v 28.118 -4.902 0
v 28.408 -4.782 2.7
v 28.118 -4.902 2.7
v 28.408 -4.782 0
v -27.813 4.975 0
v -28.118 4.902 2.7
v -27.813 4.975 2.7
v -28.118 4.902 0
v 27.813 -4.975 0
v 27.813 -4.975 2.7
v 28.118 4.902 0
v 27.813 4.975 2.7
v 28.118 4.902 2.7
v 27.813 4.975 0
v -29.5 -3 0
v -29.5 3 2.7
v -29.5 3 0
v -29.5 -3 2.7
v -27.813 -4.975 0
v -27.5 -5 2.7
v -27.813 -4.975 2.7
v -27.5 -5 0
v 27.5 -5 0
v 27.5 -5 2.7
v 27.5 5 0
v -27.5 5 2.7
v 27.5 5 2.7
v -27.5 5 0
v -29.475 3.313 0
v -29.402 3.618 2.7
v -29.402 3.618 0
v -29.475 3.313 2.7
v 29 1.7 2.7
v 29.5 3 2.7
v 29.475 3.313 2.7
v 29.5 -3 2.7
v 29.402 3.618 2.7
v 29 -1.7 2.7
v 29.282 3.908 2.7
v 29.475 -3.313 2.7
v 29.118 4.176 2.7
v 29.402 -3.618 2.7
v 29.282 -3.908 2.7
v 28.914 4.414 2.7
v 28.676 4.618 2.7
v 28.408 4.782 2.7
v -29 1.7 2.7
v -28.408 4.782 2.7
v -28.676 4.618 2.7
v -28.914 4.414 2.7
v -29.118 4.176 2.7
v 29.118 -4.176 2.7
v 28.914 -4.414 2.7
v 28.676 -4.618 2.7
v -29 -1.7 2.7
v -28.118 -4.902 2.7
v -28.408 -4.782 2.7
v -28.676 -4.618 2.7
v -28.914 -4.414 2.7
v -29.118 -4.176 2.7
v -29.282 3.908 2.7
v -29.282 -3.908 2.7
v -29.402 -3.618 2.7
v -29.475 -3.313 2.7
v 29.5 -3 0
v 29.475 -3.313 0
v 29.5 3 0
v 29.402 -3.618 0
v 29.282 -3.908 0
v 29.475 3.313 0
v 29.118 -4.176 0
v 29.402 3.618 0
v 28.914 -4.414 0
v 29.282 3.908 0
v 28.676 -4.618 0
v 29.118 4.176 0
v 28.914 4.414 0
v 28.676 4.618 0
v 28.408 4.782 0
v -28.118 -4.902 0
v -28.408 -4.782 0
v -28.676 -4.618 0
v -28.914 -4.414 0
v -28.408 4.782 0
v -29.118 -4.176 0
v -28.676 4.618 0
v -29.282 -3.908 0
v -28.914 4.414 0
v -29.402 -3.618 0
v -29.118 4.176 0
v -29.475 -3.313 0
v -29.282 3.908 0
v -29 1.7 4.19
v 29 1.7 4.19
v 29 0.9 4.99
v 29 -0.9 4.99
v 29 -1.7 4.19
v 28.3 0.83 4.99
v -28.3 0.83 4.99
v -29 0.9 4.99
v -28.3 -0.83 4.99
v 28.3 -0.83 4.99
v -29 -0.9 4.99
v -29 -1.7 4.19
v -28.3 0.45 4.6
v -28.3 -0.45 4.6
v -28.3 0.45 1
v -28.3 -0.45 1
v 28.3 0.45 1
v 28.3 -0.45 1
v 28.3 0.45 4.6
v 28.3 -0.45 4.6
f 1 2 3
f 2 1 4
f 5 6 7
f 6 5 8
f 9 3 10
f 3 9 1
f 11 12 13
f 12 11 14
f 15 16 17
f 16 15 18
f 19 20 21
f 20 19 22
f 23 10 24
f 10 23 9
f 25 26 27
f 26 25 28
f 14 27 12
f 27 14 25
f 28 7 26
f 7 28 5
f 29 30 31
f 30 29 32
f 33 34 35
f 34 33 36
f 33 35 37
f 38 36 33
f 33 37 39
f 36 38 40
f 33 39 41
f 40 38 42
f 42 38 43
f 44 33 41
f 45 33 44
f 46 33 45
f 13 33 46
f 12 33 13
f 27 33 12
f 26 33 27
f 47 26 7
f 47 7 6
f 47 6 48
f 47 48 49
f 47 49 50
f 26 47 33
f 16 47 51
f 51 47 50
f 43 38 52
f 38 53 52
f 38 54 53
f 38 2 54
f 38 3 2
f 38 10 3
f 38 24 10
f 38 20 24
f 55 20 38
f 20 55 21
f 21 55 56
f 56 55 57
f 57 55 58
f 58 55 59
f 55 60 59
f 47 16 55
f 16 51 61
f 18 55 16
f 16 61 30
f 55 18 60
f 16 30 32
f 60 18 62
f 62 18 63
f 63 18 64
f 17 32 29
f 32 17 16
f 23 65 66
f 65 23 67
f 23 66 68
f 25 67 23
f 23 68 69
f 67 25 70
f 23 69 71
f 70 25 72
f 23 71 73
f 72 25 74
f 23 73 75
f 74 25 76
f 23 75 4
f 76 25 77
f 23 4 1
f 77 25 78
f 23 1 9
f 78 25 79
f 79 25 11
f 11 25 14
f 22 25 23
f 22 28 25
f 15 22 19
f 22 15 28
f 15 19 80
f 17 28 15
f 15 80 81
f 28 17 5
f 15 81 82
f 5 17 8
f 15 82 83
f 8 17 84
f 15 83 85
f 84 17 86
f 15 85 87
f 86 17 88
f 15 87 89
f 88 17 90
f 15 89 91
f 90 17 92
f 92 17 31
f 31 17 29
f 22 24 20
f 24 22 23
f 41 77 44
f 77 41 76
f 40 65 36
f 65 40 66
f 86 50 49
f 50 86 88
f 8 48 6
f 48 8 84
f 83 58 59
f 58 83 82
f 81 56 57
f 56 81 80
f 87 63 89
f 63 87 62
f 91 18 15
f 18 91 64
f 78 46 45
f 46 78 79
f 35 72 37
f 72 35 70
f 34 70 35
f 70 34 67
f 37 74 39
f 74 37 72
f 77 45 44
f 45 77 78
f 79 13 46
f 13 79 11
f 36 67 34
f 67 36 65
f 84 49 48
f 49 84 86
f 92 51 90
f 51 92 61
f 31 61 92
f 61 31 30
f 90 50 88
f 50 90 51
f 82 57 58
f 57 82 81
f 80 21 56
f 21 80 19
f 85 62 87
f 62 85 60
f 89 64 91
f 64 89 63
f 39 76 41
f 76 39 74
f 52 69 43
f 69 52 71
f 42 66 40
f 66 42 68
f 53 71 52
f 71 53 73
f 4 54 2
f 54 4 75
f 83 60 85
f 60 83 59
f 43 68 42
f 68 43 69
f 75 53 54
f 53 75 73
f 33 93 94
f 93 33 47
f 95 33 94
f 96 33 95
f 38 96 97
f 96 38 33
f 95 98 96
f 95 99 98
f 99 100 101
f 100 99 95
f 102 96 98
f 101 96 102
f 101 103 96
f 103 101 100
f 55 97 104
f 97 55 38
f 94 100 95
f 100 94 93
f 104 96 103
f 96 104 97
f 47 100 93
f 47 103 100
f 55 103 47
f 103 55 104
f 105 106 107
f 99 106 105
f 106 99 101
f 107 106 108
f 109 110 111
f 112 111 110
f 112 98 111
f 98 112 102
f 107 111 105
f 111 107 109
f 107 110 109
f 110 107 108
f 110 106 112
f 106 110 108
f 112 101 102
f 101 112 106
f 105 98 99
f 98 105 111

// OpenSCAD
// file: common.scad
// =====================================================================
//  common.scad -- helpers and mock PCBs shared by the WP 1.6 part files.
//  Part files `include <common.scad>` (this pulls in params.scad too).
// =====================================================================
include <params.scad>

// ---------------- polygon helpers ----------------
function circ(a) = a / cos(180 / n_sides);                 // apothem -> circumradius
module ngon(a) rotate(pr_rot) circle(r = circ(a), $fn = n_sides);

// Polygon ring between apothems a0 and a1, from z0 to z1.
module ring_band(a0, a1, z0, z1)
    translate([0, 0, z0]) linear_extrude(z1 - z0) difference() { ngon(a1); if (a0 > 0) ngon(a0); }

module on_sides(list) for (k = list) rotate([0, 0, k * 360 / n_sides]) children();
module all_sides() on_sides([0 : n_sides - 1]) children();

// +X points at corner k (between side k and side k+1).
module at_corners() for (k = [0 : n_sides - 1]) rotate([0, 0, -90 + 180 / n_sides + k * 360 / n_sides]) children();

// Box in side-local coordinates: X along the side, r = apothem (r grows toward -Y), z.
module sbox(x0, x1, r0, r1, z0, z1) translate([x0, -r1, z0]) cube([x1 - x0, r1 - r0, z1 - z0]);

// Prism with a cross-section given as [r, z] points, running X = x0..x1 (side-local).
module rz_prism(x0, x1, pts)
    translate([x0, 0, 0]) rotate([90, 0, 90]) linear_extrude(x1 - x0) polygon([for (p = pts) [-p[0], p[1]]]);

// Controller trapezoid (side-0 local, 2D). y_ext extends the base past the board face.
// y = distance from the code-0 inward face toward the panel centre.
function ctrl_hw(y) = ctrl_base / 2 - (y - ctrl_gap) * tan(90 - ctrl_side);
module ctrl_2d(y_ext = 0) {
    y0 = ctrl_gap - y_ext;
    y1 = ctrl_gap + ctrl_depth;
    polygon([[-ctrl_hw(y0), -Ai + y0], [ctrl_hw(y0), -Ai + y0],
             [ctrl_hw(y1), -Ai + y1], [-ctrl_hw(y1), -Ai + y1]]);
}

// ---------------- controller edges in the CONTROLLER frame (LAYOUT-NOTES §1) ----------------
// Frame: x to the right and y into the board, seen from F.Cu (the wall side); base edge at y = ctrl_gap.
// Global: X = -x, Y = -Ai + y. Edges run in the notes' order: 0 base (from the left corner),
// 1 right side (from the base corner), 2 top (from the right corner), 3 left side (from the top corner).
ctrl_top_hw = ctrl_base / 2 - ctrl_depth * tan(90 - ctrl_side);
ctrl_c = [[-ctrl_base / 2, ctrl_gap], [ctrl_base / 2, ctrl_gap],
          [ctrl_top_hw, ctrl_gap + ctrl_depth], [-ctrl_top_hw, ctrl_gap + ctrl_depth]];
function ctrl_dir(i) = let(a = ctrl_c[i], b = ctrl_c[(i + 1) % 4], d = b - a) d / norm(d);
function ctrl_nrm(i) = let(d = ctrl_dir(i)) [d[1], -d[0]];          // outward normal
function ctrl_pt(i, s) = ctrl_c[i] + s * ctrl_dir(i);
function to_glob(p) = [-p[0], -Ai + p[1]];
function nrm_glob(n) = [-n[0], n[1]];

// 2D strip along edge i, s0..s1, from `outw` outside the edge to `inw` inside it (global coordinates).
module ctrl_edge_strip(i, s0, s1, outw, inw) {
    n = ctrl_nrm(i);
    polygon([to_glob(ctrl_pt(i, s0) + outw * n), to_glob(ctrl_pt(i, s1) + outw * n),
             to_glob(ctrl_pt(i, s1) - inw * n), to_glob(ctrl_pt(i, s0) - inw * n)]);
}

// Place children at s along edge i, local +Y = outward normal, origin on the edge offset by `off`.
module at_ctrl_edge(i, s, off = 0) {
    n = ctrl_nrm(i);
    ng = nrm_glob(n);
    translate(to_glob(ctrl_pt(i, s) + off * n)) rotate(atan2(ng[1], ng[0]) - 90) children();
}

// ---------------- mock PCBs (assembly only, never printed) ----------------
// One edge board in side-local position. Board x = -X (see params.scad header).
module mock_edge_board(code0 = false) {
    color("darkgreen") sbox(-HL, HL, Ai, Ae, 0, board_H);
    // exterior contact pads (B.Cu, gold)
    color("gold") for (x = pad_x) sbox(-x - 1.5, -x + 1.5, Ae, Ae + 0.05, 0.6, strip_top);
    // exterior corner power pads
    color("gold") for (s = [-1, 1]) for (zz = [[0.5, 3.5], [6.0, 8.5], [11.0, 12.6]])
        sbox(s > 0 ? HL - corner_pad_ex_w : -HL, s > 0 ? HL : -HL + corner_pad_ex_w, Ae, Ae + 0.05, zz[0], zz[1]);
    // LEDs on the inward face
    for (x = led_x) color("white")
        sbox(-x - led_size / 2, -x + led_size / 2, Ai - led_proud, Ai, led_z - led_size / 2, led_z + led_size / 2);
    // J4 joint pads (inward face, every board)
    color(code0 ? "gold" : "goldenrod") for (i = [0:9])
        sbox(-(-11.43 + 2.54 * i) - 0.65, -(-11.43 + 2.54 * i) + 0.65, Ai - 0.05, Ai, j4_z[0], j4_z[1]);
    // inward corner signal pads
    color("goldenrod") for (s = [-1, 1])
        sbox(s > 0 ? HL - corner_pad_in_w : -HL, s > 0 ? HL : -HL + corner_pad_in_w, Ai - 0.05, Ai, 0.85, 12.15);
}

module mock_boards() for (k = [0 : n_sides - 1]) rotate([0, 0, k * 360 / n_sides]) mock_edge_board(k == 0);

// Controller board at its rev A position (parts on the wall side). Mirror: controller x (seen from F.Cu) = -X.
module mock_controller() {
    color("white") translate([0, 0, z_ctrl_bot]) linear_extrude(ctrl_t)
        offset(r = ctrl_fillet) offset(delta = -ctrl_fillet) ctrl_2d();
    // L1 inductor, the tallest part (4.5 mm), hanging toward the wall
    color("dimgray") translate([-ctrl_L1[0] - ctrl_L1[2] / 2, -Ai + ctrl_gap + ctrl_L1[1] - ctrl_L1[3] / 2, z_ctrl_bot - ctrl_L1[4]])
        cube([ctrl_L1[2], ctrl_L1[3], ctrl_L1[4]]);
    // joint fillet zone
    color("silver") translate([-12.33, -Ai, z_ctrl_bot - 1.5]) cube([24.66, 2.0, 1.5]);
}

// Seam bridge in side-local position: PCB centred on the seam line r = As, springs on both faces.
module mock_bridge() {
    color("darkolivegreen") sbox(-bridge_len / 2, bridge_len / 2, As - bridge_t / 2, As + bridge_t / 2, bridge_z_bot, bridge_z_top);
    sh = spring_h_at_d;
    color("silver") for (x = pad_x) for (s = [-1, 1])
        sbox(x - spring_w / 2, x + spring_w / 2,
             s < 0 ? As - bridge_t / 2 - sh : As + bridge_t / 2,
             s < 0 ? As - bridge_t / 2 : As + bridge_t / 2 + sh,
             spring_contact_z - 0.9, spring_contact_z + 2.6);
}

// Diffuser film (cut template shape), 2D.
module film_2d() intersection() {
    ngon(film_a);
    // half-planes x' <= film_cr at every corner (corners cut clear of the registration pins)
    intersection_for (k = [0 : n_sides - 1])
        rotate(-90 + 180 / n_sides + k * 360 / n_sides) translate([film_cr - 400, -200]) square([400, 400]);
}
// main file
// =====================================================================
//  bridge_carrier.scad -- WP 1.6 seam-bridge carrier, PETG (SPEC §3.3, D0002).
//
//  Holds the 0.8 mm bridge PCB upright on the seam centreline so its top-contact springs
//  press on the exterior-face contact pads of the two neighbouring edge boards.
//   - base on the wall (z -3.0 .. -0.3), 10 mm wide: it reaches under both panels' board
//     wall edges (0.3 mm below them) but stays clear of the back plates and the snap legs.
//     The two panels trap it against the wall; VHB tape under it is optional.
//   - spine with the bridge slot, slot floor at z -2.0, spine top z 2.0 (below the springs'
//     contact ends at z 2.6). The slot's closed ends locate the bridge along the seam.
//   - the carrier floats: across the seam the balanced springs centre it, along the seam the
//     snap legs of both panels bound it (+-0.5 mm). Panels are located by their wall pucks.
//
//  Seam tolerance (SPEC §3.3: 6.8-7.8 mm): the carrier and bridge self-centre, so the seam
//  can vary over the springs' working range (3.0-3.5 mm each side) without changing the part.
//
//  Coordinates: X along the seam, Y across it (0 = seam centreline), z = panel z.
//  Print: base down. No supports.
//  Export:  openscad.com -o stl/bridge_carrier.stl bridge_carrier.scad
// =====================================================================
include <common.scad>

part = "print";      // print | assembly

slot_w = bridge_t + car_slot_clr;
slot_len = bridge_len + 0.6;

module bridge_carrier() {
    difference() {
        union() {
            // base
            translate([0, 0, z_wall]) linear_extrude(-0.3 - z_wall)
                offset(r = 2) offset(delta = -2) square([2 * car_half, car_w], center = true);
            // spine, 45 deg chamfered top
            translate([-car_half + 0.5, 0, -0.3 - eps]) rotate([90, 0, 90]) linear_extrude(2 * car_half - 1)
                polygon([[-car_spine_w / 2, 0], [car_spine_w / 2, 0], [car_spine_w / 2, car_spine_top + 0.3 - 0.8],
                         [car_spine_w / 2 - 0.8, car_spine_top + 0.3], [-car_spine_w / 2 + 0.8, car_spine_top + 0.3],
                         [-car_spine_w / 2, car_spine_top + 0.3 - 0.8]]);
        }
        // bridge slot with a 0.4 mm lead-in at the top
        translate([-slot_len / 2, -slot_w / 2, bridge_z_bot]) cube([slot_len, slot_w, 10]);
        translate([-slot_len / 2, 0, car_spine_top]) rotate([90, 0, 90]) linear_extrude(slot_len)
            polygon([[-slot_w / 2, -0.4], [slot_w / 2, -0.4], [slot_w / 2 + 0.4, 0.01], [-slot_w / 2 - 0.4, 0.01]]);
    }
}

if (part == "print") translate([0, 0, -z_wall]) bridge_carrier();
else if (part == "assembly") bridge_carrier();
